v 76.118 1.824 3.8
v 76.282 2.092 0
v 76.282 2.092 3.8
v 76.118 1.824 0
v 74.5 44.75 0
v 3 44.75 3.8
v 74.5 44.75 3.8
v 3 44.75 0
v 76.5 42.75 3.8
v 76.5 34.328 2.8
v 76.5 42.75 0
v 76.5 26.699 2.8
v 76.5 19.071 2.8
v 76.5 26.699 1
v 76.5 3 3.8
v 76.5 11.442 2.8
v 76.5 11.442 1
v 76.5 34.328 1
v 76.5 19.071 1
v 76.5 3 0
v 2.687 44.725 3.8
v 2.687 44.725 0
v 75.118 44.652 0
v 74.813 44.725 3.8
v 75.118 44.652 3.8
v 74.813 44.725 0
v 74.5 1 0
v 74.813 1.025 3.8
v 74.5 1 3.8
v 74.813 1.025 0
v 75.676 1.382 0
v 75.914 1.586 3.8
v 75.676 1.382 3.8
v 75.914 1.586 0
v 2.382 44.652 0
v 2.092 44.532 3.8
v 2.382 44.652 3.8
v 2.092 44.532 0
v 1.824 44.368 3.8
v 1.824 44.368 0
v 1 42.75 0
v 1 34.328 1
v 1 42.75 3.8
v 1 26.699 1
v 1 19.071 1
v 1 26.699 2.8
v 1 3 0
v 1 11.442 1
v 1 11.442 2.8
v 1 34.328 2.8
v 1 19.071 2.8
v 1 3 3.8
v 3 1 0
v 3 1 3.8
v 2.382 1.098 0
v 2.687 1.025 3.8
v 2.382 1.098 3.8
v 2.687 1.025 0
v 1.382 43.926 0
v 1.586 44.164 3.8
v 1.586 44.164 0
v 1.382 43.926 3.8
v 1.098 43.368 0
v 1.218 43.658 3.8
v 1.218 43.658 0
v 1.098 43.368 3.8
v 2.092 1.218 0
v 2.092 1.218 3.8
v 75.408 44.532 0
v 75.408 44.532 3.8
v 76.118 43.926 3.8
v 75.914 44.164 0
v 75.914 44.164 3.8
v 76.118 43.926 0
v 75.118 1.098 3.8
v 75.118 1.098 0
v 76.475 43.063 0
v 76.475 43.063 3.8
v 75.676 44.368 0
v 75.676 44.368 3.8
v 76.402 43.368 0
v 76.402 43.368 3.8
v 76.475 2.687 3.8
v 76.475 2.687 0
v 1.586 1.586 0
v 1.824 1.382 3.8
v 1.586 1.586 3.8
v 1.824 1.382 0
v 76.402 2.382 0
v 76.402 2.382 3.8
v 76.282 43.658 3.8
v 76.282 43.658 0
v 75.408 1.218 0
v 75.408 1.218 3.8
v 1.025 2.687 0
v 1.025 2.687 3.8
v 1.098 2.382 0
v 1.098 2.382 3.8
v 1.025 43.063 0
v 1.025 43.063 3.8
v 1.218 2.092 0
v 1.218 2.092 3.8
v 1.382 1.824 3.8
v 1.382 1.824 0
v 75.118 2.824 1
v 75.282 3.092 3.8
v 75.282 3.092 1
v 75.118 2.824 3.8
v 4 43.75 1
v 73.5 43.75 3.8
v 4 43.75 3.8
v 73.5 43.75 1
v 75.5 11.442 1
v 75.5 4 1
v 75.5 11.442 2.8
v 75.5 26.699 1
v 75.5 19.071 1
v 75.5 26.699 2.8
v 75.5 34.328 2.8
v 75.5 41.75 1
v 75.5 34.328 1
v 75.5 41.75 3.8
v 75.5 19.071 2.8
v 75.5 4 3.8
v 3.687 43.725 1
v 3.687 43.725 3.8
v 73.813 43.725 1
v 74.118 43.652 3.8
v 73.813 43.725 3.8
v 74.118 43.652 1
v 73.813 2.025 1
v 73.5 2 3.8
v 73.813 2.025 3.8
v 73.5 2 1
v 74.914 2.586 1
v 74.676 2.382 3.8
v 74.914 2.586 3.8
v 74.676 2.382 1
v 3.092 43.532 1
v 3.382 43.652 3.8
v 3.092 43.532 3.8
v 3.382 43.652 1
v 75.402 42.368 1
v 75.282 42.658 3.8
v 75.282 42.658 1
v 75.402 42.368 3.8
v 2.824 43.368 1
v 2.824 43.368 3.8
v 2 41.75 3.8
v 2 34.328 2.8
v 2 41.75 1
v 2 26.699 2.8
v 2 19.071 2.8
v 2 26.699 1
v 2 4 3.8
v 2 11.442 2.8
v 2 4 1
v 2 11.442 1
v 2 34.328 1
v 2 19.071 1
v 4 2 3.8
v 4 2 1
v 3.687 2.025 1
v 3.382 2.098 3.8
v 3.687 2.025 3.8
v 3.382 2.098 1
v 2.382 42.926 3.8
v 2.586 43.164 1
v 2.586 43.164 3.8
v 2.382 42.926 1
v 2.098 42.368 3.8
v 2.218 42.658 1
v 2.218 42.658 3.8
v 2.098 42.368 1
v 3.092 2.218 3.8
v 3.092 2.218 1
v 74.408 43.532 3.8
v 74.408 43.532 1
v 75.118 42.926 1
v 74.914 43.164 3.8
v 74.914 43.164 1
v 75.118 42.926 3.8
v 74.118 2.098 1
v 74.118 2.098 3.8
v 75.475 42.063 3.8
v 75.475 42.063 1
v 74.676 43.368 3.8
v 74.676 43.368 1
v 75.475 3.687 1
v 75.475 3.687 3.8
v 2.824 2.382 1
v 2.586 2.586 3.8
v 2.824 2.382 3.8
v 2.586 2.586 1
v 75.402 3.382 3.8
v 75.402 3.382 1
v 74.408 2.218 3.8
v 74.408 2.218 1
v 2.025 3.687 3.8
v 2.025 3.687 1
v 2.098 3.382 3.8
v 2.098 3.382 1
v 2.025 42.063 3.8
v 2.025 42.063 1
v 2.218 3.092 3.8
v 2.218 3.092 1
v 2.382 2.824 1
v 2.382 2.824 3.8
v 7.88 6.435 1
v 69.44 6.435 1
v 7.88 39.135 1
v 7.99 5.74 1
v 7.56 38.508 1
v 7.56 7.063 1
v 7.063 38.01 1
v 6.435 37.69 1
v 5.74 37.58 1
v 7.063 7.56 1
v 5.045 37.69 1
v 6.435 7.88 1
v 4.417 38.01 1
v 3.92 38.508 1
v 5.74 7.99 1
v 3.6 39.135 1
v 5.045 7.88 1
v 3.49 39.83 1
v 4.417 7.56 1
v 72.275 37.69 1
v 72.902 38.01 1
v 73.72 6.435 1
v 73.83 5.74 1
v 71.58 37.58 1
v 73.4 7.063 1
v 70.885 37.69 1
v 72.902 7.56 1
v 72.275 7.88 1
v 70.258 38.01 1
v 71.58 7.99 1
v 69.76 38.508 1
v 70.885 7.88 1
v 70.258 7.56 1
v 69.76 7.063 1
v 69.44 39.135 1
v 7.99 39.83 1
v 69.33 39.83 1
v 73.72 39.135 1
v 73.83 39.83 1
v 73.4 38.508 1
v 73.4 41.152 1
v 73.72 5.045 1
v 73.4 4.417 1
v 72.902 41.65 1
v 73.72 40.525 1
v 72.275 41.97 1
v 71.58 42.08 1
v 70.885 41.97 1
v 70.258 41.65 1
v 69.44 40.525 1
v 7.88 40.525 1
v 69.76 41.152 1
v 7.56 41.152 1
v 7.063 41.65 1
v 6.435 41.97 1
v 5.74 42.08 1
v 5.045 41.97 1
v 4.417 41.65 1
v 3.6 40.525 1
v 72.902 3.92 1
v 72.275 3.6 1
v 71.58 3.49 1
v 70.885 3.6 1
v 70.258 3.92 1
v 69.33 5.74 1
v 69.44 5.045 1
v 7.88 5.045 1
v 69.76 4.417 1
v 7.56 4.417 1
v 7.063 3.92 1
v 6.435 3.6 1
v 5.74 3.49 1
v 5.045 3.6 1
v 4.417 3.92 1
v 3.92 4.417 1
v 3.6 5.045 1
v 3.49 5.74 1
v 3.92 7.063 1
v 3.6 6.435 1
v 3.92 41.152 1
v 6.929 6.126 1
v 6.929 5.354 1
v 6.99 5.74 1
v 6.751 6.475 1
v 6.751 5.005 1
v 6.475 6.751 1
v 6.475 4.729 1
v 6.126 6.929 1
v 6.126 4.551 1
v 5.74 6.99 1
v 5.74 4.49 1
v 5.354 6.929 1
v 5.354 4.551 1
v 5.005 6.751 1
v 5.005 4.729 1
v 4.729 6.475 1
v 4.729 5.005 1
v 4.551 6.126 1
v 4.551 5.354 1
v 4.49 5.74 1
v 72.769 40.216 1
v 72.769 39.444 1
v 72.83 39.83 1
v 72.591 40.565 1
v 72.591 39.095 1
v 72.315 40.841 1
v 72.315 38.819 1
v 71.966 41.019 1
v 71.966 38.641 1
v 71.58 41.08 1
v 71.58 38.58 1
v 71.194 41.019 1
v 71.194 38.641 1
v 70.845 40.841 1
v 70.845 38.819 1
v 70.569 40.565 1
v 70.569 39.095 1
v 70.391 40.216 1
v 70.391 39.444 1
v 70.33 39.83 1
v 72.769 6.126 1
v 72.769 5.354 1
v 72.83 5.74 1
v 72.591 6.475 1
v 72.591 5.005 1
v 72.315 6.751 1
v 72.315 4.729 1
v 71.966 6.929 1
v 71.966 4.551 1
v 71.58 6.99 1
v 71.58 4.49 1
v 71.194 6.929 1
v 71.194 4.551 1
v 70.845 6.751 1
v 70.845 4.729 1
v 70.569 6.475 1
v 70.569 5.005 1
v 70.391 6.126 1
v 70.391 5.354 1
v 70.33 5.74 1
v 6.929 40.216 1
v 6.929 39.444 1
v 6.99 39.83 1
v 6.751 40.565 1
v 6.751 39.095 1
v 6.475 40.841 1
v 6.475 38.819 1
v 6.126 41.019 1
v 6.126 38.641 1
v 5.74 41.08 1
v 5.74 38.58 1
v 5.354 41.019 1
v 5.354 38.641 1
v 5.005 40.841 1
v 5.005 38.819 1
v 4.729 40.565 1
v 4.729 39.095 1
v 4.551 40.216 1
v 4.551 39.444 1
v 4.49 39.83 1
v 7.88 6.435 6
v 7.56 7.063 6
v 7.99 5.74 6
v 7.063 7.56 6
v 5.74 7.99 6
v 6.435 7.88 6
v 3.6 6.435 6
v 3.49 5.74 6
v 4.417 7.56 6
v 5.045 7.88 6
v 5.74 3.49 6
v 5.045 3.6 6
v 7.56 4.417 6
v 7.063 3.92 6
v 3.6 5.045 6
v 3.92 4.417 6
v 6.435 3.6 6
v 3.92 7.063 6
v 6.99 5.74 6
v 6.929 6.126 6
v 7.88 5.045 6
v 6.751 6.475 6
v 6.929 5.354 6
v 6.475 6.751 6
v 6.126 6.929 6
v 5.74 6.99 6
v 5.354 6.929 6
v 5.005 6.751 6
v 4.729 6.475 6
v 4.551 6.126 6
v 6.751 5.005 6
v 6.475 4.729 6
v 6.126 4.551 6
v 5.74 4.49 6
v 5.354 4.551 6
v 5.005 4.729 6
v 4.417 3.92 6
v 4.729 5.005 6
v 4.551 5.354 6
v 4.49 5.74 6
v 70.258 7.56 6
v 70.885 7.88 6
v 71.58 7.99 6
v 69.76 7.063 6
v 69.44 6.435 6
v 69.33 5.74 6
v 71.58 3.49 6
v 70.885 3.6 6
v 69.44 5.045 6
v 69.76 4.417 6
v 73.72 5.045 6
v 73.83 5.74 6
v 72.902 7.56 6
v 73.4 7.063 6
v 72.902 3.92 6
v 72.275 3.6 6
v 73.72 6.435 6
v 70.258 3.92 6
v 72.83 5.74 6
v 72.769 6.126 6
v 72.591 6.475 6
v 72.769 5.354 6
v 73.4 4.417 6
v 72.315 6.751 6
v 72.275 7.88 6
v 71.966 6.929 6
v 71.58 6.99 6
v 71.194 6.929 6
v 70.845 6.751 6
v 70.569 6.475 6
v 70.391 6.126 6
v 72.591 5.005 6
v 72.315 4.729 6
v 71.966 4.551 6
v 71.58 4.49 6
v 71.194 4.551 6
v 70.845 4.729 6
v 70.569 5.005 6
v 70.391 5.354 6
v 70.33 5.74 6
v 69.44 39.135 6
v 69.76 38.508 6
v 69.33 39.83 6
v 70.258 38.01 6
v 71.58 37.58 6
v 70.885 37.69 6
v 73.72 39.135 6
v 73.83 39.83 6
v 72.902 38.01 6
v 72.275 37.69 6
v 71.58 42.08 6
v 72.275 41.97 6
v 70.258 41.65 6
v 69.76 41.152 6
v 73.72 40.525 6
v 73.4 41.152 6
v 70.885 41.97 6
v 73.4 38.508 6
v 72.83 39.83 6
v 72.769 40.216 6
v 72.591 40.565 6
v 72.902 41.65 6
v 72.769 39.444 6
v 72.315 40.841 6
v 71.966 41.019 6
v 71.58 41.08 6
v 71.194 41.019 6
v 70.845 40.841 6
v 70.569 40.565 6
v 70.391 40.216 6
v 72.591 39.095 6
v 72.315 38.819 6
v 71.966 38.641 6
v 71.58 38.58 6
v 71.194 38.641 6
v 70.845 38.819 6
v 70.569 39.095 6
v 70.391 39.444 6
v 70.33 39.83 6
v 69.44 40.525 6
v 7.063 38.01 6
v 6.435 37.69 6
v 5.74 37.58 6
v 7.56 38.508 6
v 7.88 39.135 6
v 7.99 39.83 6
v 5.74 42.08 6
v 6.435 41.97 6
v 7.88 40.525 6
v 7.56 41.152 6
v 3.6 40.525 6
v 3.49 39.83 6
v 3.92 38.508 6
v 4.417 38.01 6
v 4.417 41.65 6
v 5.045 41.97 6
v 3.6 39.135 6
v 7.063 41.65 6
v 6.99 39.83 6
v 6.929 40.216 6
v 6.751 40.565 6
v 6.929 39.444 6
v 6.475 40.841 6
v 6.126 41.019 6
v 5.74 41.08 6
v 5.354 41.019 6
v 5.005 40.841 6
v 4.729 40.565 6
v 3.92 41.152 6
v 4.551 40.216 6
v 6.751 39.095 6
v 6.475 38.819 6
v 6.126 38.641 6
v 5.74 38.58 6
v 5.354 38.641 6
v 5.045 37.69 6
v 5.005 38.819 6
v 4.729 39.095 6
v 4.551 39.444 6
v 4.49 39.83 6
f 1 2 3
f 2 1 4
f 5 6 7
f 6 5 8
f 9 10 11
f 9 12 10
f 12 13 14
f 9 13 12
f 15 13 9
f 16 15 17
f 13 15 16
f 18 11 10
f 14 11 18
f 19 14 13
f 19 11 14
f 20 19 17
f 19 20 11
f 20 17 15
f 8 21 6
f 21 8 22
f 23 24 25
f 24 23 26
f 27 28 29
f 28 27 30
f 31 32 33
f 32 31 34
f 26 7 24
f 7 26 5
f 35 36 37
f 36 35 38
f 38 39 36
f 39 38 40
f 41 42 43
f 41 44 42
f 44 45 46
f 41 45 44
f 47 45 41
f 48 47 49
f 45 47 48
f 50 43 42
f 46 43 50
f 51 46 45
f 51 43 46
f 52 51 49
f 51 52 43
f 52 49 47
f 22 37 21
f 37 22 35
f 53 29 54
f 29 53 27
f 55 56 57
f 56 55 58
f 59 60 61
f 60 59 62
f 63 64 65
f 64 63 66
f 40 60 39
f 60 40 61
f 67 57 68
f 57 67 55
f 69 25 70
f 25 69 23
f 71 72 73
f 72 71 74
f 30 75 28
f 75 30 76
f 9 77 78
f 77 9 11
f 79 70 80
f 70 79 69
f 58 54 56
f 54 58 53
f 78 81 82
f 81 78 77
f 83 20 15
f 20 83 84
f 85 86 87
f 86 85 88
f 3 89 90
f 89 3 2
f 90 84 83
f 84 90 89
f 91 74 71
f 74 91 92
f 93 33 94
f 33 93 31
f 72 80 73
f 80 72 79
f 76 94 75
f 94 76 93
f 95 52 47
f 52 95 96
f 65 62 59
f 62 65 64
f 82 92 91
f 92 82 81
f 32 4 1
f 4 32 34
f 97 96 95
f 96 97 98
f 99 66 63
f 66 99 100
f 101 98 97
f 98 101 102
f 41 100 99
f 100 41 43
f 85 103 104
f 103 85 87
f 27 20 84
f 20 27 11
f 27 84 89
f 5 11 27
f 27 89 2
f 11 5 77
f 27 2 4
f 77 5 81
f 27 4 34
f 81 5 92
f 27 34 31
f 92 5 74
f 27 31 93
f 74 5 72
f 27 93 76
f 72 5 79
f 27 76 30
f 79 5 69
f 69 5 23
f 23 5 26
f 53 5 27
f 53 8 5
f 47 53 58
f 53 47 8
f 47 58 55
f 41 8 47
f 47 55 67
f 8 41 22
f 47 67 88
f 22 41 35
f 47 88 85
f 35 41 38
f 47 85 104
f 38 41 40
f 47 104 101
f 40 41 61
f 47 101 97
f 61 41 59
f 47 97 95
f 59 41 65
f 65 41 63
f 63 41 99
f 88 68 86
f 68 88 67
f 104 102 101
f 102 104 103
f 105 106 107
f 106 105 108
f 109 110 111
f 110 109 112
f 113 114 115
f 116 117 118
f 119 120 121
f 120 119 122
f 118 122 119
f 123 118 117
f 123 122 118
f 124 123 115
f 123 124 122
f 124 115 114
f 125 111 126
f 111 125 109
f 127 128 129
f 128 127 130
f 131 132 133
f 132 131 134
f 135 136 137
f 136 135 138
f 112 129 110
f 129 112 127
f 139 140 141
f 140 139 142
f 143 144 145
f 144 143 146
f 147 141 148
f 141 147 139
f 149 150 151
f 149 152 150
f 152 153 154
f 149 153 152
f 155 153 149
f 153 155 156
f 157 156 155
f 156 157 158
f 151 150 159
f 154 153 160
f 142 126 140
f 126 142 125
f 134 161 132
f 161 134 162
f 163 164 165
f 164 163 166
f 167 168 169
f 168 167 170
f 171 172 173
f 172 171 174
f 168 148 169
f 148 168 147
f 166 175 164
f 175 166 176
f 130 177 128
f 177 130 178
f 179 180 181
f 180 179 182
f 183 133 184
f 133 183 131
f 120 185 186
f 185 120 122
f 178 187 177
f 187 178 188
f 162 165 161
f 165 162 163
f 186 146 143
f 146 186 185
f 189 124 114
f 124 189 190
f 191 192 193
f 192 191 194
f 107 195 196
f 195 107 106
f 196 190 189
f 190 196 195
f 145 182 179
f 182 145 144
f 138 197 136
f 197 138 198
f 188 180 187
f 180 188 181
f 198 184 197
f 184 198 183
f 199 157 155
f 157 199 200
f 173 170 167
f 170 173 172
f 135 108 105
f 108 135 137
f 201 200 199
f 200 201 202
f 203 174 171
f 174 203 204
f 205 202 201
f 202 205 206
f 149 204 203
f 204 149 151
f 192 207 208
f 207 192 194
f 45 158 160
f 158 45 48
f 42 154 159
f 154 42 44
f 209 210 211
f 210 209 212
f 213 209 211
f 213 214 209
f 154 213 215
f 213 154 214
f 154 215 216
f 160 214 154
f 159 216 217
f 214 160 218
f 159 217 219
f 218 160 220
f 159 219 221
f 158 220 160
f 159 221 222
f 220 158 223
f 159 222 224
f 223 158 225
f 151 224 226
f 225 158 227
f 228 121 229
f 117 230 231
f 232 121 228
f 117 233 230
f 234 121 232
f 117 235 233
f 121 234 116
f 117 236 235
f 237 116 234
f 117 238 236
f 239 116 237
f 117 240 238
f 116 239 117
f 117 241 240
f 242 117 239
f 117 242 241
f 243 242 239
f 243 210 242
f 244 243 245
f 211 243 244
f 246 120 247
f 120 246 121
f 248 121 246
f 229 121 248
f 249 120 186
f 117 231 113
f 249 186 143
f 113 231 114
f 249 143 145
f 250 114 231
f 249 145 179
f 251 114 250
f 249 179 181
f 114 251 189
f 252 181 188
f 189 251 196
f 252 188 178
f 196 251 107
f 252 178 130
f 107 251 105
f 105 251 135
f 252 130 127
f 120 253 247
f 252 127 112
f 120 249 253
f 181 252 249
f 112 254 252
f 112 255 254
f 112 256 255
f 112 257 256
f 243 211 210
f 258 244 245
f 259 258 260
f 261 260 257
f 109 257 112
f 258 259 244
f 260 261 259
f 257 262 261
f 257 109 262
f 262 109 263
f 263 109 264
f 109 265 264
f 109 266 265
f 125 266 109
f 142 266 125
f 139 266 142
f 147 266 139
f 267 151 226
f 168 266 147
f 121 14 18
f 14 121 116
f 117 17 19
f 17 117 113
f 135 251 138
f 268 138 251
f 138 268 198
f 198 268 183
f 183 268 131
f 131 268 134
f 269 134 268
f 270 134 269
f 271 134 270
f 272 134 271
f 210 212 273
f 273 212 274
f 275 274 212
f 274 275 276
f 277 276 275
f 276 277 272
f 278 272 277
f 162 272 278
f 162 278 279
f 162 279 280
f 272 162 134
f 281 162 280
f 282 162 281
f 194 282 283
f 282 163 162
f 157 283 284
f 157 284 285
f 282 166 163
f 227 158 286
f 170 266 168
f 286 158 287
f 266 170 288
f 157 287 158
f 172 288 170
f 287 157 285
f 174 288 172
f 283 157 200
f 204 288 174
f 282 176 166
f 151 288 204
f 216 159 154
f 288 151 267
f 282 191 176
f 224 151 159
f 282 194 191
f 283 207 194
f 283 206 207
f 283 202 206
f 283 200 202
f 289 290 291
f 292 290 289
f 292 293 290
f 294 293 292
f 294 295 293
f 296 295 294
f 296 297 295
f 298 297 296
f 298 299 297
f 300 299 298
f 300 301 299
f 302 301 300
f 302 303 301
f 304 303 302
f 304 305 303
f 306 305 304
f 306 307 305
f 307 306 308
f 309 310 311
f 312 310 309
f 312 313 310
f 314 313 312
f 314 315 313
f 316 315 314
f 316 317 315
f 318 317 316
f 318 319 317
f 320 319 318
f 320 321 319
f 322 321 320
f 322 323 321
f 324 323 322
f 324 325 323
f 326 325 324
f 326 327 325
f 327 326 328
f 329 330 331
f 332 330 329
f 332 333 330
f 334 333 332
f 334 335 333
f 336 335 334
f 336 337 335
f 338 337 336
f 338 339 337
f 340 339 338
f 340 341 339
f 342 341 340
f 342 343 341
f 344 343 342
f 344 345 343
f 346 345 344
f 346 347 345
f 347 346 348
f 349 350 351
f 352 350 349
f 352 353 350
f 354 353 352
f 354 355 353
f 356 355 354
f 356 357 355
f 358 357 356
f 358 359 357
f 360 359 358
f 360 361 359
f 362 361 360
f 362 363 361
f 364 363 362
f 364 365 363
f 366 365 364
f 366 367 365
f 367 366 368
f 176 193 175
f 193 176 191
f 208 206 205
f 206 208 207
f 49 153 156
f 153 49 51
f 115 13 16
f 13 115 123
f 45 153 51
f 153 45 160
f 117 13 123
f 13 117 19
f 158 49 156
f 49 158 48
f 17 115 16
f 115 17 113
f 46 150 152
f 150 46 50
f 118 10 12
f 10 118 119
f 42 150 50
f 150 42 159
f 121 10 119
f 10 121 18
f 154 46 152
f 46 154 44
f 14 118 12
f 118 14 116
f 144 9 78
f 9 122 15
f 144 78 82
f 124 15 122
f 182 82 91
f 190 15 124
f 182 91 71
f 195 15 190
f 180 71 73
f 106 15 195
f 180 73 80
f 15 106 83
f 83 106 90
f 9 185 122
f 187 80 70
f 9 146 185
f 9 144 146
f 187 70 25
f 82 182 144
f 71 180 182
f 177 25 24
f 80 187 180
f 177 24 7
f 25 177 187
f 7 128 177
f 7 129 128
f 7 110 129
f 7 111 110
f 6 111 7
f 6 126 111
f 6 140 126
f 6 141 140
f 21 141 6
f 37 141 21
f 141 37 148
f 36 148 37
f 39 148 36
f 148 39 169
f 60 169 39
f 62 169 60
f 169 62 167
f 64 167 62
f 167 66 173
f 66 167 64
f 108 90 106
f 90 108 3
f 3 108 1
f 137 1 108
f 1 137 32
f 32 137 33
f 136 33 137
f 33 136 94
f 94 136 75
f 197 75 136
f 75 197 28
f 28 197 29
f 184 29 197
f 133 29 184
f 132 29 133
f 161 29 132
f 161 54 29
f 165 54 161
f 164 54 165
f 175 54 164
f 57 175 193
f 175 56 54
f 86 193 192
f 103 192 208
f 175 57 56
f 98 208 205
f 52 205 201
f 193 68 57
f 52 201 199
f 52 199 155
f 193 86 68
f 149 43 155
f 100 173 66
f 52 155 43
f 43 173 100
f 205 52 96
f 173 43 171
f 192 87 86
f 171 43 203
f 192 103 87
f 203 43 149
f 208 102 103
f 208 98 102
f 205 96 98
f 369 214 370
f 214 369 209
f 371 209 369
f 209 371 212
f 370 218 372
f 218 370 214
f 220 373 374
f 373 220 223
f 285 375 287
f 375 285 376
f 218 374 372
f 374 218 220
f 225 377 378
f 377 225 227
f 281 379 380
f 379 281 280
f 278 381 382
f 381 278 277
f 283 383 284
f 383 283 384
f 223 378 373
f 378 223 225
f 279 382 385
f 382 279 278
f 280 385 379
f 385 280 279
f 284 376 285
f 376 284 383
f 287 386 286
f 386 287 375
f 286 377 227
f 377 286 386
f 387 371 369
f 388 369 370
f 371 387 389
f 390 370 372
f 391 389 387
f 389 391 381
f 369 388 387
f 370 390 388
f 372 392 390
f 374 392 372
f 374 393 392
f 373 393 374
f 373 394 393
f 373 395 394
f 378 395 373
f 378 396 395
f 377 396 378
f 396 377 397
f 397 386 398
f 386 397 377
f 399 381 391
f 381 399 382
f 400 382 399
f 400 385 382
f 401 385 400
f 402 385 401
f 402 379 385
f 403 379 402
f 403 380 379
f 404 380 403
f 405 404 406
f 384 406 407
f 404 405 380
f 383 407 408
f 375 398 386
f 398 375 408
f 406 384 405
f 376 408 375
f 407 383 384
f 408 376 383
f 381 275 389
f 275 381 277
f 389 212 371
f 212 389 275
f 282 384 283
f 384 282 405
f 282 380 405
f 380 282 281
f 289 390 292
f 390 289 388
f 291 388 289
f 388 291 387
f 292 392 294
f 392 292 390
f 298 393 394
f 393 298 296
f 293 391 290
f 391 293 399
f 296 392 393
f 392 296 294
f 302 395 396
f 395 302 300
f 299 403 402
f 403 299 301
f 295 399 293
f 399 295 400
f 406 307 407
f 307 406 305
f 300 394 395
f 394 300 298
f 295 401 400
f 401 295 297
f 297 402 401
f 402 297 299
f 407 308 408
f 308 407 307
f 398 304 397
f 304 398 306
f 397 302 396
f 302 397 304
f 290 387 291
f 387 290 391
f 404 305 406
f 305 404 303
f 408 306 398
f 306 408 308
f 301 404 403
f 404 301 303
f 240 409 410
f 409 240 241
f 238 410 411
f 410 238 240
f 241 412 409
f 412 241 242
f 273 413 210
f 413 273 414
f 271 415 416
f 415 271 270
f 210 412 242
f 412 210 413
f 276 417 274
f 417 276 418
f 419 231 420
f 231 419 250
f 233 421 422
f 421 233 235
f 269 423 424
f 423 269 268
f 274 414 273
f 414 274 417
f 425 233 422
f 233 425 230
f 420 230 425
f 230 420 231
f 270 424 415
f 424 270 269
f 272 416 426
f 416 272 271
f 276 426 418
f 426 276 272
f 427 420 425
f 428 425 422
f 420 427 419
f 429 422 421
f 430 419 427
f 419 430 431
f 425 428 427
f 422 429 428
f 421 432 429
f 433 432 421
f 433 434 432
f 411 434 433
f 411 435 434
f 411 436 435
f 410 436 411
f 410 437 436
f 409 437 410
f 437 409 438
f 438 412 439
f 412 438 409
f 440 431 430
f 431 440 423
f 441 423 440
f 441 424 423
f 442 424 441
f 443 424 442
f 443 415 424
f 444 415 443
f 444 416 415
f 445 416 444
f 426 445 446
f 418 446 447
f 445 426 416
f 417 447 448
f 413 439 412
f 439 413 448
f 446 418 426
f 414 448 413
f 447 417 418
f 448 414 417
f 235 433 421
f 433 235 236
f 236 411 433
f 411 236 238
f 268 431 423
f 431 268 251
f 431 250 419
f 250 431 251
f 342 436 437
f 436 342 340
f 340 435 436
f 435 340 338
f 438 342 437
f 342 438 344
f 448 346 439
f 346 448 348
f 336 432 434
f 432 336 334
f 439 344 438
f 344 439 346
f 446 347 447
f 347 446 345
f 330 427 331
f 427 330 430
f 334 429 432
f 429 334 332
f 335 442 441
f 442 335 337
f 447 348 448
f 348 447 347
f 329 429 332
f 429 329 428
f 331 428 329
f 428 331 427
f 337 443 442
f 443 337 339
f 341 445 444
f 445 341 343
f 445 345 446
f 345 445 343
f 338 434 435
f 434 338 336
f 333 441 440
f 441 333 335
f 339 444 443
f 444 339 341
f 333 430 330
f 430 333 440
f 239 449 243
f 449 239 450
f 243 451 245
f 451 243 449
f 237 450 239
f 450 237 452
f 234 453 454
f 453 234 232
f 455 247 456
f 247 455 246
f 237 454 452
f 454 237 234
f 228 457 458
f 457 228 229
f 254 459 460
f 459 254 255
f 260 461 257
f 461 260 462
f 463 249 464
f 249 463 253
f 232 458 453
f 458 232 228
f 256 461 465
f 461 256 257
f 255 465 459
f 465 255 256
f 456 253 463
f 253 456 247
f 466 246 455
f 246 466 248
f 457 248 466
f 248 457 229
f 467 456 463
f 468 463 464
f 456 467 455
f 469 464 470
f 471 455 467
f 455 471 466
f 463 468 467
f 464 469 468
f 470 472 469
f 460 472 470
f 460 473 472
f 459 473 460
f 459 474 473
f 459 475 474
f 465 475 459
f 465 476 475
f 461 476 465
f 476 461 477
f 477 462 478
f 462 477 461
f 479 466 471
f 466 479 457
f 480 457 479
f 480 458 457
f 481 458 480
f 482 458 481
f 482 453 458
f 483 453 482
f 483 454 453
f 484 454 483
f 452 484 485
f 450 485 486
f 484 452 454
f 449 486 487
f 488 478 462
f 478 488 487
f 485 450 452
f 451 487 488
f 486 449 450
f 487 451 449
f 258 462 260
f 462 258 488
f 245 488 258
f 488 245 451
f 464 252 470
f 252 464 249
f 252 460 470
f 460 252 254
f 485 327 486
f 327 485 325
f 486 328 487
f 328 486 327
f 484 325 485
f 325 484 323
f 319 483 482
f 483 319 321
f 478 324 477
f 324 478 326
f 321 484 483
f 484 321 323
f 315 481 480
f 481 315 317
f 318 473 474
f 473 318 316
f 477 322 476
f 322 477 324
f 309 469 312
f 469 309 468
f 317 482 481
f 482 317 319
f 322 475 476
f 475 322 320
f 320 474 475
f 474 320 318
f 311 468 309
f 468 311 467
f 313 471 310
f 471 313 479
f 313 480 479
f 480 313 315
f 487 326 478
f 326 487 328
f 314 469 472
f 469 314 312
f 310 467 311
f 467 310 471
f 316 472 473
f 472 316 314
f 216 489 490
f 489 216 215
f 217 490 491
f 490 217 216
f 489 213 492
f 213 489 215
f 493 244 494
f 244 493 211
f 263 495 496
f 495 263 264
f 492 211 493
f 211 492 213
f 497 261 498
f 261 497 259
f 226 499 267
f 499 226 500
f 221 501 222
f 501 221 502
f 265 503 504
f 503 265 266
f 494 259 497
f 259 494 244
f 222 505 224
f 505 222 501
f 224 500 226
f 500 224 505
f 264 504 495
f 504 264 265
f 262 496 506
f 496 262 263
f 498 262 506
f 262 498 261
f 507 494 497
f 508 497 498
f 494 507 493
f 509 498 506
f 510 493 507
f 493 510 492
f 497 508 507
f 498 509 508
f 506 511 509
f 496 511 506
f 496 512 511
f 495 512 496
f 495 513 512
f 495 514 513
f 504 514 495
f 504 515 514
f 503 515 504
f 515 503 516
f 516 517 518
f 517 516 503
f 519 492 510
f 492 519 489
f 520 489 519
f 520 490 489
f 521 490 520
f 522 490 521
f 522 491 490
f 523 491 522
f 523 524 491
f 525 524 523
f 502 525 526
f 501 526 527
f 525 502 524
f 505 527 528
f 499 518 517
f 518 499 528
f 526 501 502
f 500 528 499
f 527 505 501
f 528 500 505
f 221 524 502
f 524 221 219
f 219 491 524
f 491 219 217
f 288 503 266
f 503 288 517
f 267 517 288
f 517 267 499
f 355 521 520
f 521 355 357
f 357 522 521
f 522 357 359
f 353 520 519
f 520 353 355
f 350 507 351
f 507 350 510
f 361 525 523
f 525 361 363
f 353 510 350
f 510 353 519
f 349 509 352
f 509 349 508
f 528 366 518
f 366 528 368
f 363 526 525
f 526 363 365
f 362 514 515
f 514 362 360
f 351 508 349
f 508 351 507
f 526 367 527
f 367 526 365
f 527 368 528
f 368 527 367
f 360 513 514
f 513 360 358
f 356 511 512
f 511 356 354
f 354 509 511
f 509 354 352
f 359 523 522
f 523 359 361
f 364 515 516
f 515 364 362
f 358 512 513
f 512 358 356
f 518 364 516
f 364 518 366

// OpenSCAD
// file: ProjectBox/util.scad
// Copyright (c) 2024 Chris Lee and contibuters.
// Licensed under the MIT license. See LICENSE file in the project root for details.

include <MCAD/units.scad>

ones = [1, 1, 1];

module RX(angle) {
  rotate(angle, X) children();
}
module RY(angle) {
  rotate(angle, Y) children();
}
module RZ(angle) {
  rotate(angle, Z) children();
}
module TX(dist) {
  translate(X*dist) children();
}
module TX(dist) {
  translate(X*dist) children();
}
module TY(dist) {
  translate(Y*dist) children();
}
module TZ(dist) {
  translate(Z*dist) children();
}

// x-extra and y-extra adjust the x/y offset at the far-x and far-y corners.
module at_corners(dims, corner_offset, to_draw=undef, x_extra=0.0, y_extra=0.0) {
  o = corner_offset;
  if (!to_draw || to_draw[0]) translate([o, o, 0]) children();
  if (!to_draw || to_draw[1]) translate([dims[0]-o+x_extra, o, 0]) rotate(90, Z) children();
  if (!to_draw || to_draw[2]) translate([dims[0]-o+x_extra, dims[1]-o+y_extra, 0])
				rotate(180, Z) children();
  if (!to_draw || to_draw[3]) translate([o, dims[1]-o+y_extra, 0]) rotate(270, Z) children();
}
// file: ProjectBox/screw_tab.scad
// Copyright (c) 2024 Chris Lee and contibuters.
// Licensed under the MIT license. See LICENSE file in the project root for details.

include <MCAD/units.scad>

// Screw tab is drawn in the y-direction (attached on -Y side).
module screw_tab(tab_width=10, thickness=2, screw_radius=2) {
  $fn=40;
  dz = thickness;
  sd = tab_width;
  sr = tab_width / 2;
  translate([-sr, -epsilon, 0]) difference() {
    union() {
      cube([sd, sr, dz]);
      translate([sr, sr, 0]) cylinder(dz, sr, sr);
    }
    translate([sr, sr, -epsilon]) cylinder(dz+1, screw_radius, screw_radius);
  }
}
// file: ProjectBox/rounded_box.scad
// Copyright (c) 2024 Chris Lee and contibuters.
// Licensed under the MIT license. See LICENSE file in the project root for details.

module rounded_box(dims, r) {
  x = dims[0];
  y = dims[1];
  z = dims[2];
  module cyl() {
    cylinder(z, r, r, $fn=40);
  }
  if (r == 0) {
    cube(r);
  } else {
    hull() {
      translate([r, r, 0]) cyl();
      translate([x-r, r, 0]) cyl();
      translate([x-r, y-r, 0]) cyl();
      translate([r, y-r, 0]) cyl();
    }
  }
}
// file: board.scad
// Copyright (c) 2025 Chris Lee and contibuters.
// Licensed under the MIT license. See LICENSE file in the project root for details.

include <ProjectBox/project_box.scad>

board_thickness = 1.6;
pad_space = 2.54;
board_dims = [28*pad_space, 15.5*pad_space, board_thickness];

module Garden133_board() {
  u = pad_space;

  // Board imported from KiCad (VRML) -> Blender
  translate([board_dims[0]/2, board_dims[1]/2, board_dims[2]/2]) color("white")
    import(file="Garden133.stl", convexity=3);

}
// file: ProjectBox/shtc3_window.scad
// Copyright (c) 2024 Chris Lee and contibuters.
// Licensed under the MIT license. See LICENSE file in the project root for details.

module shtc3_window(offset, space_above_board, wall, negative, z_gap = 0.0) {
  sz = [3, 3, 1];
  translate(offset) {
    if (negative) {
      translate([0, 0, z_gap-1]) {
	cube([sz[0], sz[1], space_above_board+wall+2-z_gap]);
      }
    } else {
      translate([-wall, -wall, z_gap+epsilon]) {
	cube([sz[0] + 2*wall, sz[1] + 2*wall, space_above_board-z_gap]);
      }
    }
  }
}
// file: ProjectBox/project_box.scad
// Copyright (c) 2024 Chris Lee and contibuters.
// Licensed under the MIT license. See LICENSE file in the project root for details.

include <MCAD/units.scad>
include <rounded_box.scad>
include <screw_tab.scad>
use <util.scad>

bump_d = 0.8;

module in_board_frame(outer_dims, board_dims, space_below_board) {
  translate([(outer_dims[0] - board_dims[0])/2,
	     (outer_dims[1] - board_dims[1])/2,
	     space_below_board])
    children();
}

default_tab_len = 10;
function tab_length(dim, num_tabs=2) = min(default_tab_len, dim/(2*(num_tabs+1)));
function tab_offset(i, dim, num_tabs=2) = (dim*(i+1)/(num_tabs+1))-0.5*tab_length(dim, num_tabs);

module project_box(outer_dims,
		   wall_thickness=1,
		   gap=0.1,
		   // If true put snaps for top/bottom on sides rather than front/back.
		   snaps_on_sides=false,
		   corner_radius=0.0,
		   top=true,
		   top_cutouts=undef,
		   ym_cutouts=undef,
		   screw_tab_d=0) {
  wall = wall_thickness;
  num_snaps = 2;

  // Length of side of box snap-tabs will be added.
  tabdim = snaps_on_sides ? outer_dims[1] : outer_dims[0];
  // Length of snap-tab holes (tabs shrinks slightly to fit).
  tablen = tab_length(tabdim, num_snaps);
  // Difference between tab length and tab hole length;
  tab_gap = 1;

  // Space between bottom of box and top of box.
  fit_gap = 0.02;

  // The bottom of the box fits inside the shell of the top.
  dims = top ? outer_dims : outer_dims - (2*wall+fit_gap) * [1, 1, 1];

  // Tabs for clicking base into start at wall-height, are 2*wall-height high.
  // Allow 2*wall_height above bump for hight of bottom part of box.
  tab_depth = min(bump_d, dims[2] - 3*wall);
  bottom_height = wall+tab_depth+2*wall;

  module bump() {
    dh = bump_d - fit_gap;
    rotate(90, Y) cylinder(tablen-tab_gap, dh, dh, $fn=20);
  }

  module hump_positives(humps, space_above_board, corner_radius, wall) {
    for (hump = humps) {
      offset = hump[0];
      outer_dims = hump[1];
      z_start = gap * 2 + wall + space_below_board + board_thickness + space_above_board + epsilon;
      translate([offset[0], offset[1], z_start]) rounded_box(outer_dims, corner_radius);
    }
  }
  module hump_negatives(humps, space_above_board, corner_radius, wall) {
    for (hump = humps) {
      offset = hump[0];
      outer_dims = hump[1];
      z_start = gap * 2 + wall + space_below_board + board_thickness + space_above_board - epsilon - epsilon;
      translate([offset[0]+wall, offset[1]+wall, z_start])
	rounded_box(outer_dims-[wall*2, wall*2, wall], corner_radius);
    }
  }
  module cutouts(cutout_list, remove_len) {
    for (cutout = cutout_list) {
      offset = cutout[0];
      dims = cutout[1];
      translate([offset[0], offset[1], 0]) cube([dims[0], dims[1], remove_len]);
    }
  }

  wedge_dx = 2*wall;
  wedge_dy = min(outer_dims[1]-2*wall-corner_radius, 10);
  wedge_dz = wedge_dx;
  module wedge() {
    // Bump to stop the bottom of box to go too up into the top.
    translate([0, 0, bottom_height+fit_gap]) {
      // Start with cube, switch to wedge for printing.
      translate(Y*wedge_dy) rotate(90, X)
	linear_extrude(wedge_dy) polygon([[0, 0], [0, wedge_dz], [wedge_dx, 0]]);
    }
  }

  // The bottom of the box fits inside the shell of the top.
  translate(top ? [0,0,0] : wall*[1, 1, 0]) union() {
    difference() {
      // shell
      difference() {
	union() {
	  rounded_box(dims, corner_radius);
	  if (top)
	    hump_positives(bumps, space_above_board, corner_radius, wall);
	}
	iz = top ? (dims[2] - 2*wall) : dims[2];  // inner-z
	translate(ones*wall) rounded_box([dims[0] - wall*2, dims[1]-wall*2, iz], corner_radius);
	if (top) {
	  hump_negatives(bumps, space_above_board, corner_radius, wall);
	  // cutouts from the top surface
	  if (top_cutouts)
	    cutouts(top_cutouts, remove_len=100);
	  // cutouts from the y=0 surface
	  if (ym_cutouts)
	    translate([0, 1+wall, 0]) rotate([90, 0, 0]) cutouts(ym_cutouts, remove_len=(wall+2));
	}
      }

      if (!top) {
	// Box bottom

	// Cut off top.
	translate([-1, -1, bottom_height]) { cube(dims + 2 * ones); }
	// Make a slot for top to click into
	bottom_offset = -wall;  // offset to account for bottom fitting inside top.
	if (snaps_on_sides) {
	  for (isnap = [0:num_snaps-1]) {
	    y = tab_offset(isnap, tabdim, num_snaps) + bottom_offset;
	    translate([-1, y, wall]) cube([dims[0]+2, tablen, wall+tab_depth]);
	  }
	} else {
	  for (isnap = [0:num_snaps-1]) {
	    x = tab_offset(isnap, tabdim, num_snaps) + bottom_offset;
	    translate([x, -1, wall]) cube([tablen, dims[1]+2, wall+tab_depth]);
	  }
	}
      }	else {
	// Box top

	// Cut out for bottom
	translate(wall*[1, 1, -1]) {
	  rounded_box([dims[0]-2*wall, dims[1]-2*wall, wall*3], corner_radius);
	}
      }
    }

    // Board supports
    if (top) {
      // Snaps: Make bumps to click into slot in bottom.
      if (snaps_on_sides) {
	for (isnap = [0:num_snaps-1]) {
	  y = tab_offset(isnap, tabdim, num_snaps) + tab_gap/2;
	  translate([wall-epsilon, y, wall+gap/2]) rotate(90, Z) bump();
	  translate([dims[0]+epsilon-wall, y, wall+gap/2]) rotate(90, Z) bump();
	}
	translate([wall-epsilon, (outer_dims[1]-wedge_dy)/2, 0]) wedge();
	translate([outer_dims[0]-wall+epsilon, (outer_dims[1]+wedge_dy)/2, 0])
	  rotate(180, Z) wedge();
      } else {
	for (isnap = [0:num_snaps-1]) {
	  x = tab_offset(isnap, tabdim, num_snaps) + tab_gap/2;
	  translate([x, wall-epsilon, wall+gap/2]) bump();
	  translate([x, dims[1]+epsilon-wall, wall+gap/2]) bump();
	}
	translate([(outer_dims[0]+wedge_dy)/2, wall-epsilon, 0]) rotate(90, Z) wedge();
	translate([(outer_dims[0]-wedge_dy)/2, outer_dims[1]-wall+epsilon, 0])
	  rotate(270, Z) wedge();
      }
    }
  }

  if (top && screw_tab_d > 0) {
    translate([outer_dims[0]/2, outer_dims[1], 0])
      screw_tab(tab_width=screw_tab_d, thickness=2*wall, screw_radius=2);
  }
}

module holder_tab(wall_thickness, thickness=2, out_r=4, in_r=2) {
  translate(Z*wall_thickness) linear_extrude(thickness) {
    $fn = 20;
    y = epsilon;
    difference() {
      hull() {
	translate([0, epsilon-out_r]) circle(out_r);
	polygon([[-out_r, epsilon], [out_r, epsilon],
		 [out_r, 2*epsilon], [out_r, 2*epsilon]]);
      }
      translate([0, -out_r]) circle(in_r);
    }
  }
}
// file: ProjectBox/mounts.scad
// Copyright (c) 2024 Chris Lee and contibuters.
// Licensed under the MIT license. See LICENSE file in the project root for details.

module screw_mount(height, wall, screw_radius) {
  $fn = 20;
  difference() {
    cylinder(height, screw_radius+wall, screw_radius+wall);
    cylinder(height+epsilon, screw_radius, screw_radius);
  }
}
// file: gui.scad
// Copyright (c) 2025 Chris Lee and contibuters.
// Licensed under the MIT license. See LICENSE file in the project root for details.

// :GUI:
show_vitamins = false;
// :GUI:
show_box = true;
// :GUI:
top = true;
// file: box.scad
// Copyright (c) 2025 Chris Lee and contibuters.
// Licensed under the MIT license. See LICENSE file in the project root for details.

include <ProjectBox/mounts.scad>
include <ProjectBox/project_box.scad>
include <ProjectBox/shtc3_window.scad>
include <board.scad>

ones = [1, 1, 1];

wall_thickness = 1;
gap = 0.2;
corner_radius = 2;
mount_offset = pad_space;

space_above_board = 3;
space_below_board = 5;
inner_dims = (board_dims
	      + Z*(space_above_board+space_below_board)
	      + 2*gap*ones);
outer_dims = (inner_dims
	      + 2*ones*wall_thickness
	      + [2, 2, 0] * corner_radius);

shtc3_loc = [51.8, 1.4];

buttons_loc = [30, 15];
buttons_size = [13, 7];

conn_loc = [65, 7];
conn_size  = [7.6, 29.5];

top_cutouts = [[buttons_loc, buttons_size], [conn_loc, conn_size]];

usb_cutout = [[17.75, wall_thickness+space_below_board+board_thickness-1], [9.5, 3.5]];
ym_cutouts = [usb_cutout];

// Location for "USB DBG" text to carve above buttons
text_loc = [25, 25];

antenna_cutout = [[40, -1], [5, wall_thickness+space_below_board+board_thickness+4.4]];
// antenna_cutout = [[5, wall_thickness+space_below_board+board_thickness+1], [10, 4]];
yp_cutouts = [antenna_cutout];

module in_Garden133_board_frame(board_height=false) {
  zoffset = wall_thickness + (board_height ? space_below_board : 0);
  in_board_frame(outer_dims, board_dims, zoffset) children();
}

module Garden133_box(top) {
  wall = wall_thickness;

  difference() {
    union() {
      project_box(outer_dims,
		  wall_thickness=wall_thickness,
		  gap=gap,
		  snaps_on_sides=true,
		  corner_radius=corner_radius,
		  top=top,
		  top_cutouts=top_cutouts,
		  ym_cutouts=ym_cutouts,
		  yp_cutouts=yp_cutouts);
      if (top) {
	translate([text_loc[0]-2, text_loc[1]-2, outer_dims[2]-2*wall+epsilon]) cube([30, 8, wall]);
	in_Garden133_board_frame(board_height=true)
	  shtc3_window(shtc3_loc, space_above_board+2*wall, wall, false, z_gap=1.5);
	// Bumps on top etc.
	// translate(b1o) rounded_box(b1d, corner_radius);
      } else {
	// Stuff to add on bottom.
	// Stuff to add on bottom.
	in_Garden133_board_frame() {
	  at_corners(board_dims+1.0*X, mount_offset, x_extra=-1.2, y_extra=-0.2)
	    screw_mount(space_below_board, wall, 2.5/2);
	}
	
      }	
    }
    // Cut outs.
    if (top) {
      in_Garden133_board_frame(board_height=true)
	shtc3_window(shtc3_loc, space_above_board+wall+1, wall, true, z_gap=1);
      
      // Negative space of bumps.
      // translate(b1o+[wall, wall, -epsilon]) rounded_box(b1d-wall*[2, 2, 1], corner_radius);
      // translate(b2o+[wall, wall, -epsilon]) rounded_box(b2d-wall*[2, 2, 1], corner_radius);

      translate([text_loc[0], text_loc[1], outer_dims[2]-0.5+epsilon])
	linear_extrude(0.5) text("USB DBG", size=4);
    }
  }
}
// main file
// Copyright (c) 2025 Chris Lee and contibuters.
// Licensed under the MIT license. See LICENSE file in the project root for details.

include <box.scad>
include <gui.scad>

top = false;

Garden133_box(top);
